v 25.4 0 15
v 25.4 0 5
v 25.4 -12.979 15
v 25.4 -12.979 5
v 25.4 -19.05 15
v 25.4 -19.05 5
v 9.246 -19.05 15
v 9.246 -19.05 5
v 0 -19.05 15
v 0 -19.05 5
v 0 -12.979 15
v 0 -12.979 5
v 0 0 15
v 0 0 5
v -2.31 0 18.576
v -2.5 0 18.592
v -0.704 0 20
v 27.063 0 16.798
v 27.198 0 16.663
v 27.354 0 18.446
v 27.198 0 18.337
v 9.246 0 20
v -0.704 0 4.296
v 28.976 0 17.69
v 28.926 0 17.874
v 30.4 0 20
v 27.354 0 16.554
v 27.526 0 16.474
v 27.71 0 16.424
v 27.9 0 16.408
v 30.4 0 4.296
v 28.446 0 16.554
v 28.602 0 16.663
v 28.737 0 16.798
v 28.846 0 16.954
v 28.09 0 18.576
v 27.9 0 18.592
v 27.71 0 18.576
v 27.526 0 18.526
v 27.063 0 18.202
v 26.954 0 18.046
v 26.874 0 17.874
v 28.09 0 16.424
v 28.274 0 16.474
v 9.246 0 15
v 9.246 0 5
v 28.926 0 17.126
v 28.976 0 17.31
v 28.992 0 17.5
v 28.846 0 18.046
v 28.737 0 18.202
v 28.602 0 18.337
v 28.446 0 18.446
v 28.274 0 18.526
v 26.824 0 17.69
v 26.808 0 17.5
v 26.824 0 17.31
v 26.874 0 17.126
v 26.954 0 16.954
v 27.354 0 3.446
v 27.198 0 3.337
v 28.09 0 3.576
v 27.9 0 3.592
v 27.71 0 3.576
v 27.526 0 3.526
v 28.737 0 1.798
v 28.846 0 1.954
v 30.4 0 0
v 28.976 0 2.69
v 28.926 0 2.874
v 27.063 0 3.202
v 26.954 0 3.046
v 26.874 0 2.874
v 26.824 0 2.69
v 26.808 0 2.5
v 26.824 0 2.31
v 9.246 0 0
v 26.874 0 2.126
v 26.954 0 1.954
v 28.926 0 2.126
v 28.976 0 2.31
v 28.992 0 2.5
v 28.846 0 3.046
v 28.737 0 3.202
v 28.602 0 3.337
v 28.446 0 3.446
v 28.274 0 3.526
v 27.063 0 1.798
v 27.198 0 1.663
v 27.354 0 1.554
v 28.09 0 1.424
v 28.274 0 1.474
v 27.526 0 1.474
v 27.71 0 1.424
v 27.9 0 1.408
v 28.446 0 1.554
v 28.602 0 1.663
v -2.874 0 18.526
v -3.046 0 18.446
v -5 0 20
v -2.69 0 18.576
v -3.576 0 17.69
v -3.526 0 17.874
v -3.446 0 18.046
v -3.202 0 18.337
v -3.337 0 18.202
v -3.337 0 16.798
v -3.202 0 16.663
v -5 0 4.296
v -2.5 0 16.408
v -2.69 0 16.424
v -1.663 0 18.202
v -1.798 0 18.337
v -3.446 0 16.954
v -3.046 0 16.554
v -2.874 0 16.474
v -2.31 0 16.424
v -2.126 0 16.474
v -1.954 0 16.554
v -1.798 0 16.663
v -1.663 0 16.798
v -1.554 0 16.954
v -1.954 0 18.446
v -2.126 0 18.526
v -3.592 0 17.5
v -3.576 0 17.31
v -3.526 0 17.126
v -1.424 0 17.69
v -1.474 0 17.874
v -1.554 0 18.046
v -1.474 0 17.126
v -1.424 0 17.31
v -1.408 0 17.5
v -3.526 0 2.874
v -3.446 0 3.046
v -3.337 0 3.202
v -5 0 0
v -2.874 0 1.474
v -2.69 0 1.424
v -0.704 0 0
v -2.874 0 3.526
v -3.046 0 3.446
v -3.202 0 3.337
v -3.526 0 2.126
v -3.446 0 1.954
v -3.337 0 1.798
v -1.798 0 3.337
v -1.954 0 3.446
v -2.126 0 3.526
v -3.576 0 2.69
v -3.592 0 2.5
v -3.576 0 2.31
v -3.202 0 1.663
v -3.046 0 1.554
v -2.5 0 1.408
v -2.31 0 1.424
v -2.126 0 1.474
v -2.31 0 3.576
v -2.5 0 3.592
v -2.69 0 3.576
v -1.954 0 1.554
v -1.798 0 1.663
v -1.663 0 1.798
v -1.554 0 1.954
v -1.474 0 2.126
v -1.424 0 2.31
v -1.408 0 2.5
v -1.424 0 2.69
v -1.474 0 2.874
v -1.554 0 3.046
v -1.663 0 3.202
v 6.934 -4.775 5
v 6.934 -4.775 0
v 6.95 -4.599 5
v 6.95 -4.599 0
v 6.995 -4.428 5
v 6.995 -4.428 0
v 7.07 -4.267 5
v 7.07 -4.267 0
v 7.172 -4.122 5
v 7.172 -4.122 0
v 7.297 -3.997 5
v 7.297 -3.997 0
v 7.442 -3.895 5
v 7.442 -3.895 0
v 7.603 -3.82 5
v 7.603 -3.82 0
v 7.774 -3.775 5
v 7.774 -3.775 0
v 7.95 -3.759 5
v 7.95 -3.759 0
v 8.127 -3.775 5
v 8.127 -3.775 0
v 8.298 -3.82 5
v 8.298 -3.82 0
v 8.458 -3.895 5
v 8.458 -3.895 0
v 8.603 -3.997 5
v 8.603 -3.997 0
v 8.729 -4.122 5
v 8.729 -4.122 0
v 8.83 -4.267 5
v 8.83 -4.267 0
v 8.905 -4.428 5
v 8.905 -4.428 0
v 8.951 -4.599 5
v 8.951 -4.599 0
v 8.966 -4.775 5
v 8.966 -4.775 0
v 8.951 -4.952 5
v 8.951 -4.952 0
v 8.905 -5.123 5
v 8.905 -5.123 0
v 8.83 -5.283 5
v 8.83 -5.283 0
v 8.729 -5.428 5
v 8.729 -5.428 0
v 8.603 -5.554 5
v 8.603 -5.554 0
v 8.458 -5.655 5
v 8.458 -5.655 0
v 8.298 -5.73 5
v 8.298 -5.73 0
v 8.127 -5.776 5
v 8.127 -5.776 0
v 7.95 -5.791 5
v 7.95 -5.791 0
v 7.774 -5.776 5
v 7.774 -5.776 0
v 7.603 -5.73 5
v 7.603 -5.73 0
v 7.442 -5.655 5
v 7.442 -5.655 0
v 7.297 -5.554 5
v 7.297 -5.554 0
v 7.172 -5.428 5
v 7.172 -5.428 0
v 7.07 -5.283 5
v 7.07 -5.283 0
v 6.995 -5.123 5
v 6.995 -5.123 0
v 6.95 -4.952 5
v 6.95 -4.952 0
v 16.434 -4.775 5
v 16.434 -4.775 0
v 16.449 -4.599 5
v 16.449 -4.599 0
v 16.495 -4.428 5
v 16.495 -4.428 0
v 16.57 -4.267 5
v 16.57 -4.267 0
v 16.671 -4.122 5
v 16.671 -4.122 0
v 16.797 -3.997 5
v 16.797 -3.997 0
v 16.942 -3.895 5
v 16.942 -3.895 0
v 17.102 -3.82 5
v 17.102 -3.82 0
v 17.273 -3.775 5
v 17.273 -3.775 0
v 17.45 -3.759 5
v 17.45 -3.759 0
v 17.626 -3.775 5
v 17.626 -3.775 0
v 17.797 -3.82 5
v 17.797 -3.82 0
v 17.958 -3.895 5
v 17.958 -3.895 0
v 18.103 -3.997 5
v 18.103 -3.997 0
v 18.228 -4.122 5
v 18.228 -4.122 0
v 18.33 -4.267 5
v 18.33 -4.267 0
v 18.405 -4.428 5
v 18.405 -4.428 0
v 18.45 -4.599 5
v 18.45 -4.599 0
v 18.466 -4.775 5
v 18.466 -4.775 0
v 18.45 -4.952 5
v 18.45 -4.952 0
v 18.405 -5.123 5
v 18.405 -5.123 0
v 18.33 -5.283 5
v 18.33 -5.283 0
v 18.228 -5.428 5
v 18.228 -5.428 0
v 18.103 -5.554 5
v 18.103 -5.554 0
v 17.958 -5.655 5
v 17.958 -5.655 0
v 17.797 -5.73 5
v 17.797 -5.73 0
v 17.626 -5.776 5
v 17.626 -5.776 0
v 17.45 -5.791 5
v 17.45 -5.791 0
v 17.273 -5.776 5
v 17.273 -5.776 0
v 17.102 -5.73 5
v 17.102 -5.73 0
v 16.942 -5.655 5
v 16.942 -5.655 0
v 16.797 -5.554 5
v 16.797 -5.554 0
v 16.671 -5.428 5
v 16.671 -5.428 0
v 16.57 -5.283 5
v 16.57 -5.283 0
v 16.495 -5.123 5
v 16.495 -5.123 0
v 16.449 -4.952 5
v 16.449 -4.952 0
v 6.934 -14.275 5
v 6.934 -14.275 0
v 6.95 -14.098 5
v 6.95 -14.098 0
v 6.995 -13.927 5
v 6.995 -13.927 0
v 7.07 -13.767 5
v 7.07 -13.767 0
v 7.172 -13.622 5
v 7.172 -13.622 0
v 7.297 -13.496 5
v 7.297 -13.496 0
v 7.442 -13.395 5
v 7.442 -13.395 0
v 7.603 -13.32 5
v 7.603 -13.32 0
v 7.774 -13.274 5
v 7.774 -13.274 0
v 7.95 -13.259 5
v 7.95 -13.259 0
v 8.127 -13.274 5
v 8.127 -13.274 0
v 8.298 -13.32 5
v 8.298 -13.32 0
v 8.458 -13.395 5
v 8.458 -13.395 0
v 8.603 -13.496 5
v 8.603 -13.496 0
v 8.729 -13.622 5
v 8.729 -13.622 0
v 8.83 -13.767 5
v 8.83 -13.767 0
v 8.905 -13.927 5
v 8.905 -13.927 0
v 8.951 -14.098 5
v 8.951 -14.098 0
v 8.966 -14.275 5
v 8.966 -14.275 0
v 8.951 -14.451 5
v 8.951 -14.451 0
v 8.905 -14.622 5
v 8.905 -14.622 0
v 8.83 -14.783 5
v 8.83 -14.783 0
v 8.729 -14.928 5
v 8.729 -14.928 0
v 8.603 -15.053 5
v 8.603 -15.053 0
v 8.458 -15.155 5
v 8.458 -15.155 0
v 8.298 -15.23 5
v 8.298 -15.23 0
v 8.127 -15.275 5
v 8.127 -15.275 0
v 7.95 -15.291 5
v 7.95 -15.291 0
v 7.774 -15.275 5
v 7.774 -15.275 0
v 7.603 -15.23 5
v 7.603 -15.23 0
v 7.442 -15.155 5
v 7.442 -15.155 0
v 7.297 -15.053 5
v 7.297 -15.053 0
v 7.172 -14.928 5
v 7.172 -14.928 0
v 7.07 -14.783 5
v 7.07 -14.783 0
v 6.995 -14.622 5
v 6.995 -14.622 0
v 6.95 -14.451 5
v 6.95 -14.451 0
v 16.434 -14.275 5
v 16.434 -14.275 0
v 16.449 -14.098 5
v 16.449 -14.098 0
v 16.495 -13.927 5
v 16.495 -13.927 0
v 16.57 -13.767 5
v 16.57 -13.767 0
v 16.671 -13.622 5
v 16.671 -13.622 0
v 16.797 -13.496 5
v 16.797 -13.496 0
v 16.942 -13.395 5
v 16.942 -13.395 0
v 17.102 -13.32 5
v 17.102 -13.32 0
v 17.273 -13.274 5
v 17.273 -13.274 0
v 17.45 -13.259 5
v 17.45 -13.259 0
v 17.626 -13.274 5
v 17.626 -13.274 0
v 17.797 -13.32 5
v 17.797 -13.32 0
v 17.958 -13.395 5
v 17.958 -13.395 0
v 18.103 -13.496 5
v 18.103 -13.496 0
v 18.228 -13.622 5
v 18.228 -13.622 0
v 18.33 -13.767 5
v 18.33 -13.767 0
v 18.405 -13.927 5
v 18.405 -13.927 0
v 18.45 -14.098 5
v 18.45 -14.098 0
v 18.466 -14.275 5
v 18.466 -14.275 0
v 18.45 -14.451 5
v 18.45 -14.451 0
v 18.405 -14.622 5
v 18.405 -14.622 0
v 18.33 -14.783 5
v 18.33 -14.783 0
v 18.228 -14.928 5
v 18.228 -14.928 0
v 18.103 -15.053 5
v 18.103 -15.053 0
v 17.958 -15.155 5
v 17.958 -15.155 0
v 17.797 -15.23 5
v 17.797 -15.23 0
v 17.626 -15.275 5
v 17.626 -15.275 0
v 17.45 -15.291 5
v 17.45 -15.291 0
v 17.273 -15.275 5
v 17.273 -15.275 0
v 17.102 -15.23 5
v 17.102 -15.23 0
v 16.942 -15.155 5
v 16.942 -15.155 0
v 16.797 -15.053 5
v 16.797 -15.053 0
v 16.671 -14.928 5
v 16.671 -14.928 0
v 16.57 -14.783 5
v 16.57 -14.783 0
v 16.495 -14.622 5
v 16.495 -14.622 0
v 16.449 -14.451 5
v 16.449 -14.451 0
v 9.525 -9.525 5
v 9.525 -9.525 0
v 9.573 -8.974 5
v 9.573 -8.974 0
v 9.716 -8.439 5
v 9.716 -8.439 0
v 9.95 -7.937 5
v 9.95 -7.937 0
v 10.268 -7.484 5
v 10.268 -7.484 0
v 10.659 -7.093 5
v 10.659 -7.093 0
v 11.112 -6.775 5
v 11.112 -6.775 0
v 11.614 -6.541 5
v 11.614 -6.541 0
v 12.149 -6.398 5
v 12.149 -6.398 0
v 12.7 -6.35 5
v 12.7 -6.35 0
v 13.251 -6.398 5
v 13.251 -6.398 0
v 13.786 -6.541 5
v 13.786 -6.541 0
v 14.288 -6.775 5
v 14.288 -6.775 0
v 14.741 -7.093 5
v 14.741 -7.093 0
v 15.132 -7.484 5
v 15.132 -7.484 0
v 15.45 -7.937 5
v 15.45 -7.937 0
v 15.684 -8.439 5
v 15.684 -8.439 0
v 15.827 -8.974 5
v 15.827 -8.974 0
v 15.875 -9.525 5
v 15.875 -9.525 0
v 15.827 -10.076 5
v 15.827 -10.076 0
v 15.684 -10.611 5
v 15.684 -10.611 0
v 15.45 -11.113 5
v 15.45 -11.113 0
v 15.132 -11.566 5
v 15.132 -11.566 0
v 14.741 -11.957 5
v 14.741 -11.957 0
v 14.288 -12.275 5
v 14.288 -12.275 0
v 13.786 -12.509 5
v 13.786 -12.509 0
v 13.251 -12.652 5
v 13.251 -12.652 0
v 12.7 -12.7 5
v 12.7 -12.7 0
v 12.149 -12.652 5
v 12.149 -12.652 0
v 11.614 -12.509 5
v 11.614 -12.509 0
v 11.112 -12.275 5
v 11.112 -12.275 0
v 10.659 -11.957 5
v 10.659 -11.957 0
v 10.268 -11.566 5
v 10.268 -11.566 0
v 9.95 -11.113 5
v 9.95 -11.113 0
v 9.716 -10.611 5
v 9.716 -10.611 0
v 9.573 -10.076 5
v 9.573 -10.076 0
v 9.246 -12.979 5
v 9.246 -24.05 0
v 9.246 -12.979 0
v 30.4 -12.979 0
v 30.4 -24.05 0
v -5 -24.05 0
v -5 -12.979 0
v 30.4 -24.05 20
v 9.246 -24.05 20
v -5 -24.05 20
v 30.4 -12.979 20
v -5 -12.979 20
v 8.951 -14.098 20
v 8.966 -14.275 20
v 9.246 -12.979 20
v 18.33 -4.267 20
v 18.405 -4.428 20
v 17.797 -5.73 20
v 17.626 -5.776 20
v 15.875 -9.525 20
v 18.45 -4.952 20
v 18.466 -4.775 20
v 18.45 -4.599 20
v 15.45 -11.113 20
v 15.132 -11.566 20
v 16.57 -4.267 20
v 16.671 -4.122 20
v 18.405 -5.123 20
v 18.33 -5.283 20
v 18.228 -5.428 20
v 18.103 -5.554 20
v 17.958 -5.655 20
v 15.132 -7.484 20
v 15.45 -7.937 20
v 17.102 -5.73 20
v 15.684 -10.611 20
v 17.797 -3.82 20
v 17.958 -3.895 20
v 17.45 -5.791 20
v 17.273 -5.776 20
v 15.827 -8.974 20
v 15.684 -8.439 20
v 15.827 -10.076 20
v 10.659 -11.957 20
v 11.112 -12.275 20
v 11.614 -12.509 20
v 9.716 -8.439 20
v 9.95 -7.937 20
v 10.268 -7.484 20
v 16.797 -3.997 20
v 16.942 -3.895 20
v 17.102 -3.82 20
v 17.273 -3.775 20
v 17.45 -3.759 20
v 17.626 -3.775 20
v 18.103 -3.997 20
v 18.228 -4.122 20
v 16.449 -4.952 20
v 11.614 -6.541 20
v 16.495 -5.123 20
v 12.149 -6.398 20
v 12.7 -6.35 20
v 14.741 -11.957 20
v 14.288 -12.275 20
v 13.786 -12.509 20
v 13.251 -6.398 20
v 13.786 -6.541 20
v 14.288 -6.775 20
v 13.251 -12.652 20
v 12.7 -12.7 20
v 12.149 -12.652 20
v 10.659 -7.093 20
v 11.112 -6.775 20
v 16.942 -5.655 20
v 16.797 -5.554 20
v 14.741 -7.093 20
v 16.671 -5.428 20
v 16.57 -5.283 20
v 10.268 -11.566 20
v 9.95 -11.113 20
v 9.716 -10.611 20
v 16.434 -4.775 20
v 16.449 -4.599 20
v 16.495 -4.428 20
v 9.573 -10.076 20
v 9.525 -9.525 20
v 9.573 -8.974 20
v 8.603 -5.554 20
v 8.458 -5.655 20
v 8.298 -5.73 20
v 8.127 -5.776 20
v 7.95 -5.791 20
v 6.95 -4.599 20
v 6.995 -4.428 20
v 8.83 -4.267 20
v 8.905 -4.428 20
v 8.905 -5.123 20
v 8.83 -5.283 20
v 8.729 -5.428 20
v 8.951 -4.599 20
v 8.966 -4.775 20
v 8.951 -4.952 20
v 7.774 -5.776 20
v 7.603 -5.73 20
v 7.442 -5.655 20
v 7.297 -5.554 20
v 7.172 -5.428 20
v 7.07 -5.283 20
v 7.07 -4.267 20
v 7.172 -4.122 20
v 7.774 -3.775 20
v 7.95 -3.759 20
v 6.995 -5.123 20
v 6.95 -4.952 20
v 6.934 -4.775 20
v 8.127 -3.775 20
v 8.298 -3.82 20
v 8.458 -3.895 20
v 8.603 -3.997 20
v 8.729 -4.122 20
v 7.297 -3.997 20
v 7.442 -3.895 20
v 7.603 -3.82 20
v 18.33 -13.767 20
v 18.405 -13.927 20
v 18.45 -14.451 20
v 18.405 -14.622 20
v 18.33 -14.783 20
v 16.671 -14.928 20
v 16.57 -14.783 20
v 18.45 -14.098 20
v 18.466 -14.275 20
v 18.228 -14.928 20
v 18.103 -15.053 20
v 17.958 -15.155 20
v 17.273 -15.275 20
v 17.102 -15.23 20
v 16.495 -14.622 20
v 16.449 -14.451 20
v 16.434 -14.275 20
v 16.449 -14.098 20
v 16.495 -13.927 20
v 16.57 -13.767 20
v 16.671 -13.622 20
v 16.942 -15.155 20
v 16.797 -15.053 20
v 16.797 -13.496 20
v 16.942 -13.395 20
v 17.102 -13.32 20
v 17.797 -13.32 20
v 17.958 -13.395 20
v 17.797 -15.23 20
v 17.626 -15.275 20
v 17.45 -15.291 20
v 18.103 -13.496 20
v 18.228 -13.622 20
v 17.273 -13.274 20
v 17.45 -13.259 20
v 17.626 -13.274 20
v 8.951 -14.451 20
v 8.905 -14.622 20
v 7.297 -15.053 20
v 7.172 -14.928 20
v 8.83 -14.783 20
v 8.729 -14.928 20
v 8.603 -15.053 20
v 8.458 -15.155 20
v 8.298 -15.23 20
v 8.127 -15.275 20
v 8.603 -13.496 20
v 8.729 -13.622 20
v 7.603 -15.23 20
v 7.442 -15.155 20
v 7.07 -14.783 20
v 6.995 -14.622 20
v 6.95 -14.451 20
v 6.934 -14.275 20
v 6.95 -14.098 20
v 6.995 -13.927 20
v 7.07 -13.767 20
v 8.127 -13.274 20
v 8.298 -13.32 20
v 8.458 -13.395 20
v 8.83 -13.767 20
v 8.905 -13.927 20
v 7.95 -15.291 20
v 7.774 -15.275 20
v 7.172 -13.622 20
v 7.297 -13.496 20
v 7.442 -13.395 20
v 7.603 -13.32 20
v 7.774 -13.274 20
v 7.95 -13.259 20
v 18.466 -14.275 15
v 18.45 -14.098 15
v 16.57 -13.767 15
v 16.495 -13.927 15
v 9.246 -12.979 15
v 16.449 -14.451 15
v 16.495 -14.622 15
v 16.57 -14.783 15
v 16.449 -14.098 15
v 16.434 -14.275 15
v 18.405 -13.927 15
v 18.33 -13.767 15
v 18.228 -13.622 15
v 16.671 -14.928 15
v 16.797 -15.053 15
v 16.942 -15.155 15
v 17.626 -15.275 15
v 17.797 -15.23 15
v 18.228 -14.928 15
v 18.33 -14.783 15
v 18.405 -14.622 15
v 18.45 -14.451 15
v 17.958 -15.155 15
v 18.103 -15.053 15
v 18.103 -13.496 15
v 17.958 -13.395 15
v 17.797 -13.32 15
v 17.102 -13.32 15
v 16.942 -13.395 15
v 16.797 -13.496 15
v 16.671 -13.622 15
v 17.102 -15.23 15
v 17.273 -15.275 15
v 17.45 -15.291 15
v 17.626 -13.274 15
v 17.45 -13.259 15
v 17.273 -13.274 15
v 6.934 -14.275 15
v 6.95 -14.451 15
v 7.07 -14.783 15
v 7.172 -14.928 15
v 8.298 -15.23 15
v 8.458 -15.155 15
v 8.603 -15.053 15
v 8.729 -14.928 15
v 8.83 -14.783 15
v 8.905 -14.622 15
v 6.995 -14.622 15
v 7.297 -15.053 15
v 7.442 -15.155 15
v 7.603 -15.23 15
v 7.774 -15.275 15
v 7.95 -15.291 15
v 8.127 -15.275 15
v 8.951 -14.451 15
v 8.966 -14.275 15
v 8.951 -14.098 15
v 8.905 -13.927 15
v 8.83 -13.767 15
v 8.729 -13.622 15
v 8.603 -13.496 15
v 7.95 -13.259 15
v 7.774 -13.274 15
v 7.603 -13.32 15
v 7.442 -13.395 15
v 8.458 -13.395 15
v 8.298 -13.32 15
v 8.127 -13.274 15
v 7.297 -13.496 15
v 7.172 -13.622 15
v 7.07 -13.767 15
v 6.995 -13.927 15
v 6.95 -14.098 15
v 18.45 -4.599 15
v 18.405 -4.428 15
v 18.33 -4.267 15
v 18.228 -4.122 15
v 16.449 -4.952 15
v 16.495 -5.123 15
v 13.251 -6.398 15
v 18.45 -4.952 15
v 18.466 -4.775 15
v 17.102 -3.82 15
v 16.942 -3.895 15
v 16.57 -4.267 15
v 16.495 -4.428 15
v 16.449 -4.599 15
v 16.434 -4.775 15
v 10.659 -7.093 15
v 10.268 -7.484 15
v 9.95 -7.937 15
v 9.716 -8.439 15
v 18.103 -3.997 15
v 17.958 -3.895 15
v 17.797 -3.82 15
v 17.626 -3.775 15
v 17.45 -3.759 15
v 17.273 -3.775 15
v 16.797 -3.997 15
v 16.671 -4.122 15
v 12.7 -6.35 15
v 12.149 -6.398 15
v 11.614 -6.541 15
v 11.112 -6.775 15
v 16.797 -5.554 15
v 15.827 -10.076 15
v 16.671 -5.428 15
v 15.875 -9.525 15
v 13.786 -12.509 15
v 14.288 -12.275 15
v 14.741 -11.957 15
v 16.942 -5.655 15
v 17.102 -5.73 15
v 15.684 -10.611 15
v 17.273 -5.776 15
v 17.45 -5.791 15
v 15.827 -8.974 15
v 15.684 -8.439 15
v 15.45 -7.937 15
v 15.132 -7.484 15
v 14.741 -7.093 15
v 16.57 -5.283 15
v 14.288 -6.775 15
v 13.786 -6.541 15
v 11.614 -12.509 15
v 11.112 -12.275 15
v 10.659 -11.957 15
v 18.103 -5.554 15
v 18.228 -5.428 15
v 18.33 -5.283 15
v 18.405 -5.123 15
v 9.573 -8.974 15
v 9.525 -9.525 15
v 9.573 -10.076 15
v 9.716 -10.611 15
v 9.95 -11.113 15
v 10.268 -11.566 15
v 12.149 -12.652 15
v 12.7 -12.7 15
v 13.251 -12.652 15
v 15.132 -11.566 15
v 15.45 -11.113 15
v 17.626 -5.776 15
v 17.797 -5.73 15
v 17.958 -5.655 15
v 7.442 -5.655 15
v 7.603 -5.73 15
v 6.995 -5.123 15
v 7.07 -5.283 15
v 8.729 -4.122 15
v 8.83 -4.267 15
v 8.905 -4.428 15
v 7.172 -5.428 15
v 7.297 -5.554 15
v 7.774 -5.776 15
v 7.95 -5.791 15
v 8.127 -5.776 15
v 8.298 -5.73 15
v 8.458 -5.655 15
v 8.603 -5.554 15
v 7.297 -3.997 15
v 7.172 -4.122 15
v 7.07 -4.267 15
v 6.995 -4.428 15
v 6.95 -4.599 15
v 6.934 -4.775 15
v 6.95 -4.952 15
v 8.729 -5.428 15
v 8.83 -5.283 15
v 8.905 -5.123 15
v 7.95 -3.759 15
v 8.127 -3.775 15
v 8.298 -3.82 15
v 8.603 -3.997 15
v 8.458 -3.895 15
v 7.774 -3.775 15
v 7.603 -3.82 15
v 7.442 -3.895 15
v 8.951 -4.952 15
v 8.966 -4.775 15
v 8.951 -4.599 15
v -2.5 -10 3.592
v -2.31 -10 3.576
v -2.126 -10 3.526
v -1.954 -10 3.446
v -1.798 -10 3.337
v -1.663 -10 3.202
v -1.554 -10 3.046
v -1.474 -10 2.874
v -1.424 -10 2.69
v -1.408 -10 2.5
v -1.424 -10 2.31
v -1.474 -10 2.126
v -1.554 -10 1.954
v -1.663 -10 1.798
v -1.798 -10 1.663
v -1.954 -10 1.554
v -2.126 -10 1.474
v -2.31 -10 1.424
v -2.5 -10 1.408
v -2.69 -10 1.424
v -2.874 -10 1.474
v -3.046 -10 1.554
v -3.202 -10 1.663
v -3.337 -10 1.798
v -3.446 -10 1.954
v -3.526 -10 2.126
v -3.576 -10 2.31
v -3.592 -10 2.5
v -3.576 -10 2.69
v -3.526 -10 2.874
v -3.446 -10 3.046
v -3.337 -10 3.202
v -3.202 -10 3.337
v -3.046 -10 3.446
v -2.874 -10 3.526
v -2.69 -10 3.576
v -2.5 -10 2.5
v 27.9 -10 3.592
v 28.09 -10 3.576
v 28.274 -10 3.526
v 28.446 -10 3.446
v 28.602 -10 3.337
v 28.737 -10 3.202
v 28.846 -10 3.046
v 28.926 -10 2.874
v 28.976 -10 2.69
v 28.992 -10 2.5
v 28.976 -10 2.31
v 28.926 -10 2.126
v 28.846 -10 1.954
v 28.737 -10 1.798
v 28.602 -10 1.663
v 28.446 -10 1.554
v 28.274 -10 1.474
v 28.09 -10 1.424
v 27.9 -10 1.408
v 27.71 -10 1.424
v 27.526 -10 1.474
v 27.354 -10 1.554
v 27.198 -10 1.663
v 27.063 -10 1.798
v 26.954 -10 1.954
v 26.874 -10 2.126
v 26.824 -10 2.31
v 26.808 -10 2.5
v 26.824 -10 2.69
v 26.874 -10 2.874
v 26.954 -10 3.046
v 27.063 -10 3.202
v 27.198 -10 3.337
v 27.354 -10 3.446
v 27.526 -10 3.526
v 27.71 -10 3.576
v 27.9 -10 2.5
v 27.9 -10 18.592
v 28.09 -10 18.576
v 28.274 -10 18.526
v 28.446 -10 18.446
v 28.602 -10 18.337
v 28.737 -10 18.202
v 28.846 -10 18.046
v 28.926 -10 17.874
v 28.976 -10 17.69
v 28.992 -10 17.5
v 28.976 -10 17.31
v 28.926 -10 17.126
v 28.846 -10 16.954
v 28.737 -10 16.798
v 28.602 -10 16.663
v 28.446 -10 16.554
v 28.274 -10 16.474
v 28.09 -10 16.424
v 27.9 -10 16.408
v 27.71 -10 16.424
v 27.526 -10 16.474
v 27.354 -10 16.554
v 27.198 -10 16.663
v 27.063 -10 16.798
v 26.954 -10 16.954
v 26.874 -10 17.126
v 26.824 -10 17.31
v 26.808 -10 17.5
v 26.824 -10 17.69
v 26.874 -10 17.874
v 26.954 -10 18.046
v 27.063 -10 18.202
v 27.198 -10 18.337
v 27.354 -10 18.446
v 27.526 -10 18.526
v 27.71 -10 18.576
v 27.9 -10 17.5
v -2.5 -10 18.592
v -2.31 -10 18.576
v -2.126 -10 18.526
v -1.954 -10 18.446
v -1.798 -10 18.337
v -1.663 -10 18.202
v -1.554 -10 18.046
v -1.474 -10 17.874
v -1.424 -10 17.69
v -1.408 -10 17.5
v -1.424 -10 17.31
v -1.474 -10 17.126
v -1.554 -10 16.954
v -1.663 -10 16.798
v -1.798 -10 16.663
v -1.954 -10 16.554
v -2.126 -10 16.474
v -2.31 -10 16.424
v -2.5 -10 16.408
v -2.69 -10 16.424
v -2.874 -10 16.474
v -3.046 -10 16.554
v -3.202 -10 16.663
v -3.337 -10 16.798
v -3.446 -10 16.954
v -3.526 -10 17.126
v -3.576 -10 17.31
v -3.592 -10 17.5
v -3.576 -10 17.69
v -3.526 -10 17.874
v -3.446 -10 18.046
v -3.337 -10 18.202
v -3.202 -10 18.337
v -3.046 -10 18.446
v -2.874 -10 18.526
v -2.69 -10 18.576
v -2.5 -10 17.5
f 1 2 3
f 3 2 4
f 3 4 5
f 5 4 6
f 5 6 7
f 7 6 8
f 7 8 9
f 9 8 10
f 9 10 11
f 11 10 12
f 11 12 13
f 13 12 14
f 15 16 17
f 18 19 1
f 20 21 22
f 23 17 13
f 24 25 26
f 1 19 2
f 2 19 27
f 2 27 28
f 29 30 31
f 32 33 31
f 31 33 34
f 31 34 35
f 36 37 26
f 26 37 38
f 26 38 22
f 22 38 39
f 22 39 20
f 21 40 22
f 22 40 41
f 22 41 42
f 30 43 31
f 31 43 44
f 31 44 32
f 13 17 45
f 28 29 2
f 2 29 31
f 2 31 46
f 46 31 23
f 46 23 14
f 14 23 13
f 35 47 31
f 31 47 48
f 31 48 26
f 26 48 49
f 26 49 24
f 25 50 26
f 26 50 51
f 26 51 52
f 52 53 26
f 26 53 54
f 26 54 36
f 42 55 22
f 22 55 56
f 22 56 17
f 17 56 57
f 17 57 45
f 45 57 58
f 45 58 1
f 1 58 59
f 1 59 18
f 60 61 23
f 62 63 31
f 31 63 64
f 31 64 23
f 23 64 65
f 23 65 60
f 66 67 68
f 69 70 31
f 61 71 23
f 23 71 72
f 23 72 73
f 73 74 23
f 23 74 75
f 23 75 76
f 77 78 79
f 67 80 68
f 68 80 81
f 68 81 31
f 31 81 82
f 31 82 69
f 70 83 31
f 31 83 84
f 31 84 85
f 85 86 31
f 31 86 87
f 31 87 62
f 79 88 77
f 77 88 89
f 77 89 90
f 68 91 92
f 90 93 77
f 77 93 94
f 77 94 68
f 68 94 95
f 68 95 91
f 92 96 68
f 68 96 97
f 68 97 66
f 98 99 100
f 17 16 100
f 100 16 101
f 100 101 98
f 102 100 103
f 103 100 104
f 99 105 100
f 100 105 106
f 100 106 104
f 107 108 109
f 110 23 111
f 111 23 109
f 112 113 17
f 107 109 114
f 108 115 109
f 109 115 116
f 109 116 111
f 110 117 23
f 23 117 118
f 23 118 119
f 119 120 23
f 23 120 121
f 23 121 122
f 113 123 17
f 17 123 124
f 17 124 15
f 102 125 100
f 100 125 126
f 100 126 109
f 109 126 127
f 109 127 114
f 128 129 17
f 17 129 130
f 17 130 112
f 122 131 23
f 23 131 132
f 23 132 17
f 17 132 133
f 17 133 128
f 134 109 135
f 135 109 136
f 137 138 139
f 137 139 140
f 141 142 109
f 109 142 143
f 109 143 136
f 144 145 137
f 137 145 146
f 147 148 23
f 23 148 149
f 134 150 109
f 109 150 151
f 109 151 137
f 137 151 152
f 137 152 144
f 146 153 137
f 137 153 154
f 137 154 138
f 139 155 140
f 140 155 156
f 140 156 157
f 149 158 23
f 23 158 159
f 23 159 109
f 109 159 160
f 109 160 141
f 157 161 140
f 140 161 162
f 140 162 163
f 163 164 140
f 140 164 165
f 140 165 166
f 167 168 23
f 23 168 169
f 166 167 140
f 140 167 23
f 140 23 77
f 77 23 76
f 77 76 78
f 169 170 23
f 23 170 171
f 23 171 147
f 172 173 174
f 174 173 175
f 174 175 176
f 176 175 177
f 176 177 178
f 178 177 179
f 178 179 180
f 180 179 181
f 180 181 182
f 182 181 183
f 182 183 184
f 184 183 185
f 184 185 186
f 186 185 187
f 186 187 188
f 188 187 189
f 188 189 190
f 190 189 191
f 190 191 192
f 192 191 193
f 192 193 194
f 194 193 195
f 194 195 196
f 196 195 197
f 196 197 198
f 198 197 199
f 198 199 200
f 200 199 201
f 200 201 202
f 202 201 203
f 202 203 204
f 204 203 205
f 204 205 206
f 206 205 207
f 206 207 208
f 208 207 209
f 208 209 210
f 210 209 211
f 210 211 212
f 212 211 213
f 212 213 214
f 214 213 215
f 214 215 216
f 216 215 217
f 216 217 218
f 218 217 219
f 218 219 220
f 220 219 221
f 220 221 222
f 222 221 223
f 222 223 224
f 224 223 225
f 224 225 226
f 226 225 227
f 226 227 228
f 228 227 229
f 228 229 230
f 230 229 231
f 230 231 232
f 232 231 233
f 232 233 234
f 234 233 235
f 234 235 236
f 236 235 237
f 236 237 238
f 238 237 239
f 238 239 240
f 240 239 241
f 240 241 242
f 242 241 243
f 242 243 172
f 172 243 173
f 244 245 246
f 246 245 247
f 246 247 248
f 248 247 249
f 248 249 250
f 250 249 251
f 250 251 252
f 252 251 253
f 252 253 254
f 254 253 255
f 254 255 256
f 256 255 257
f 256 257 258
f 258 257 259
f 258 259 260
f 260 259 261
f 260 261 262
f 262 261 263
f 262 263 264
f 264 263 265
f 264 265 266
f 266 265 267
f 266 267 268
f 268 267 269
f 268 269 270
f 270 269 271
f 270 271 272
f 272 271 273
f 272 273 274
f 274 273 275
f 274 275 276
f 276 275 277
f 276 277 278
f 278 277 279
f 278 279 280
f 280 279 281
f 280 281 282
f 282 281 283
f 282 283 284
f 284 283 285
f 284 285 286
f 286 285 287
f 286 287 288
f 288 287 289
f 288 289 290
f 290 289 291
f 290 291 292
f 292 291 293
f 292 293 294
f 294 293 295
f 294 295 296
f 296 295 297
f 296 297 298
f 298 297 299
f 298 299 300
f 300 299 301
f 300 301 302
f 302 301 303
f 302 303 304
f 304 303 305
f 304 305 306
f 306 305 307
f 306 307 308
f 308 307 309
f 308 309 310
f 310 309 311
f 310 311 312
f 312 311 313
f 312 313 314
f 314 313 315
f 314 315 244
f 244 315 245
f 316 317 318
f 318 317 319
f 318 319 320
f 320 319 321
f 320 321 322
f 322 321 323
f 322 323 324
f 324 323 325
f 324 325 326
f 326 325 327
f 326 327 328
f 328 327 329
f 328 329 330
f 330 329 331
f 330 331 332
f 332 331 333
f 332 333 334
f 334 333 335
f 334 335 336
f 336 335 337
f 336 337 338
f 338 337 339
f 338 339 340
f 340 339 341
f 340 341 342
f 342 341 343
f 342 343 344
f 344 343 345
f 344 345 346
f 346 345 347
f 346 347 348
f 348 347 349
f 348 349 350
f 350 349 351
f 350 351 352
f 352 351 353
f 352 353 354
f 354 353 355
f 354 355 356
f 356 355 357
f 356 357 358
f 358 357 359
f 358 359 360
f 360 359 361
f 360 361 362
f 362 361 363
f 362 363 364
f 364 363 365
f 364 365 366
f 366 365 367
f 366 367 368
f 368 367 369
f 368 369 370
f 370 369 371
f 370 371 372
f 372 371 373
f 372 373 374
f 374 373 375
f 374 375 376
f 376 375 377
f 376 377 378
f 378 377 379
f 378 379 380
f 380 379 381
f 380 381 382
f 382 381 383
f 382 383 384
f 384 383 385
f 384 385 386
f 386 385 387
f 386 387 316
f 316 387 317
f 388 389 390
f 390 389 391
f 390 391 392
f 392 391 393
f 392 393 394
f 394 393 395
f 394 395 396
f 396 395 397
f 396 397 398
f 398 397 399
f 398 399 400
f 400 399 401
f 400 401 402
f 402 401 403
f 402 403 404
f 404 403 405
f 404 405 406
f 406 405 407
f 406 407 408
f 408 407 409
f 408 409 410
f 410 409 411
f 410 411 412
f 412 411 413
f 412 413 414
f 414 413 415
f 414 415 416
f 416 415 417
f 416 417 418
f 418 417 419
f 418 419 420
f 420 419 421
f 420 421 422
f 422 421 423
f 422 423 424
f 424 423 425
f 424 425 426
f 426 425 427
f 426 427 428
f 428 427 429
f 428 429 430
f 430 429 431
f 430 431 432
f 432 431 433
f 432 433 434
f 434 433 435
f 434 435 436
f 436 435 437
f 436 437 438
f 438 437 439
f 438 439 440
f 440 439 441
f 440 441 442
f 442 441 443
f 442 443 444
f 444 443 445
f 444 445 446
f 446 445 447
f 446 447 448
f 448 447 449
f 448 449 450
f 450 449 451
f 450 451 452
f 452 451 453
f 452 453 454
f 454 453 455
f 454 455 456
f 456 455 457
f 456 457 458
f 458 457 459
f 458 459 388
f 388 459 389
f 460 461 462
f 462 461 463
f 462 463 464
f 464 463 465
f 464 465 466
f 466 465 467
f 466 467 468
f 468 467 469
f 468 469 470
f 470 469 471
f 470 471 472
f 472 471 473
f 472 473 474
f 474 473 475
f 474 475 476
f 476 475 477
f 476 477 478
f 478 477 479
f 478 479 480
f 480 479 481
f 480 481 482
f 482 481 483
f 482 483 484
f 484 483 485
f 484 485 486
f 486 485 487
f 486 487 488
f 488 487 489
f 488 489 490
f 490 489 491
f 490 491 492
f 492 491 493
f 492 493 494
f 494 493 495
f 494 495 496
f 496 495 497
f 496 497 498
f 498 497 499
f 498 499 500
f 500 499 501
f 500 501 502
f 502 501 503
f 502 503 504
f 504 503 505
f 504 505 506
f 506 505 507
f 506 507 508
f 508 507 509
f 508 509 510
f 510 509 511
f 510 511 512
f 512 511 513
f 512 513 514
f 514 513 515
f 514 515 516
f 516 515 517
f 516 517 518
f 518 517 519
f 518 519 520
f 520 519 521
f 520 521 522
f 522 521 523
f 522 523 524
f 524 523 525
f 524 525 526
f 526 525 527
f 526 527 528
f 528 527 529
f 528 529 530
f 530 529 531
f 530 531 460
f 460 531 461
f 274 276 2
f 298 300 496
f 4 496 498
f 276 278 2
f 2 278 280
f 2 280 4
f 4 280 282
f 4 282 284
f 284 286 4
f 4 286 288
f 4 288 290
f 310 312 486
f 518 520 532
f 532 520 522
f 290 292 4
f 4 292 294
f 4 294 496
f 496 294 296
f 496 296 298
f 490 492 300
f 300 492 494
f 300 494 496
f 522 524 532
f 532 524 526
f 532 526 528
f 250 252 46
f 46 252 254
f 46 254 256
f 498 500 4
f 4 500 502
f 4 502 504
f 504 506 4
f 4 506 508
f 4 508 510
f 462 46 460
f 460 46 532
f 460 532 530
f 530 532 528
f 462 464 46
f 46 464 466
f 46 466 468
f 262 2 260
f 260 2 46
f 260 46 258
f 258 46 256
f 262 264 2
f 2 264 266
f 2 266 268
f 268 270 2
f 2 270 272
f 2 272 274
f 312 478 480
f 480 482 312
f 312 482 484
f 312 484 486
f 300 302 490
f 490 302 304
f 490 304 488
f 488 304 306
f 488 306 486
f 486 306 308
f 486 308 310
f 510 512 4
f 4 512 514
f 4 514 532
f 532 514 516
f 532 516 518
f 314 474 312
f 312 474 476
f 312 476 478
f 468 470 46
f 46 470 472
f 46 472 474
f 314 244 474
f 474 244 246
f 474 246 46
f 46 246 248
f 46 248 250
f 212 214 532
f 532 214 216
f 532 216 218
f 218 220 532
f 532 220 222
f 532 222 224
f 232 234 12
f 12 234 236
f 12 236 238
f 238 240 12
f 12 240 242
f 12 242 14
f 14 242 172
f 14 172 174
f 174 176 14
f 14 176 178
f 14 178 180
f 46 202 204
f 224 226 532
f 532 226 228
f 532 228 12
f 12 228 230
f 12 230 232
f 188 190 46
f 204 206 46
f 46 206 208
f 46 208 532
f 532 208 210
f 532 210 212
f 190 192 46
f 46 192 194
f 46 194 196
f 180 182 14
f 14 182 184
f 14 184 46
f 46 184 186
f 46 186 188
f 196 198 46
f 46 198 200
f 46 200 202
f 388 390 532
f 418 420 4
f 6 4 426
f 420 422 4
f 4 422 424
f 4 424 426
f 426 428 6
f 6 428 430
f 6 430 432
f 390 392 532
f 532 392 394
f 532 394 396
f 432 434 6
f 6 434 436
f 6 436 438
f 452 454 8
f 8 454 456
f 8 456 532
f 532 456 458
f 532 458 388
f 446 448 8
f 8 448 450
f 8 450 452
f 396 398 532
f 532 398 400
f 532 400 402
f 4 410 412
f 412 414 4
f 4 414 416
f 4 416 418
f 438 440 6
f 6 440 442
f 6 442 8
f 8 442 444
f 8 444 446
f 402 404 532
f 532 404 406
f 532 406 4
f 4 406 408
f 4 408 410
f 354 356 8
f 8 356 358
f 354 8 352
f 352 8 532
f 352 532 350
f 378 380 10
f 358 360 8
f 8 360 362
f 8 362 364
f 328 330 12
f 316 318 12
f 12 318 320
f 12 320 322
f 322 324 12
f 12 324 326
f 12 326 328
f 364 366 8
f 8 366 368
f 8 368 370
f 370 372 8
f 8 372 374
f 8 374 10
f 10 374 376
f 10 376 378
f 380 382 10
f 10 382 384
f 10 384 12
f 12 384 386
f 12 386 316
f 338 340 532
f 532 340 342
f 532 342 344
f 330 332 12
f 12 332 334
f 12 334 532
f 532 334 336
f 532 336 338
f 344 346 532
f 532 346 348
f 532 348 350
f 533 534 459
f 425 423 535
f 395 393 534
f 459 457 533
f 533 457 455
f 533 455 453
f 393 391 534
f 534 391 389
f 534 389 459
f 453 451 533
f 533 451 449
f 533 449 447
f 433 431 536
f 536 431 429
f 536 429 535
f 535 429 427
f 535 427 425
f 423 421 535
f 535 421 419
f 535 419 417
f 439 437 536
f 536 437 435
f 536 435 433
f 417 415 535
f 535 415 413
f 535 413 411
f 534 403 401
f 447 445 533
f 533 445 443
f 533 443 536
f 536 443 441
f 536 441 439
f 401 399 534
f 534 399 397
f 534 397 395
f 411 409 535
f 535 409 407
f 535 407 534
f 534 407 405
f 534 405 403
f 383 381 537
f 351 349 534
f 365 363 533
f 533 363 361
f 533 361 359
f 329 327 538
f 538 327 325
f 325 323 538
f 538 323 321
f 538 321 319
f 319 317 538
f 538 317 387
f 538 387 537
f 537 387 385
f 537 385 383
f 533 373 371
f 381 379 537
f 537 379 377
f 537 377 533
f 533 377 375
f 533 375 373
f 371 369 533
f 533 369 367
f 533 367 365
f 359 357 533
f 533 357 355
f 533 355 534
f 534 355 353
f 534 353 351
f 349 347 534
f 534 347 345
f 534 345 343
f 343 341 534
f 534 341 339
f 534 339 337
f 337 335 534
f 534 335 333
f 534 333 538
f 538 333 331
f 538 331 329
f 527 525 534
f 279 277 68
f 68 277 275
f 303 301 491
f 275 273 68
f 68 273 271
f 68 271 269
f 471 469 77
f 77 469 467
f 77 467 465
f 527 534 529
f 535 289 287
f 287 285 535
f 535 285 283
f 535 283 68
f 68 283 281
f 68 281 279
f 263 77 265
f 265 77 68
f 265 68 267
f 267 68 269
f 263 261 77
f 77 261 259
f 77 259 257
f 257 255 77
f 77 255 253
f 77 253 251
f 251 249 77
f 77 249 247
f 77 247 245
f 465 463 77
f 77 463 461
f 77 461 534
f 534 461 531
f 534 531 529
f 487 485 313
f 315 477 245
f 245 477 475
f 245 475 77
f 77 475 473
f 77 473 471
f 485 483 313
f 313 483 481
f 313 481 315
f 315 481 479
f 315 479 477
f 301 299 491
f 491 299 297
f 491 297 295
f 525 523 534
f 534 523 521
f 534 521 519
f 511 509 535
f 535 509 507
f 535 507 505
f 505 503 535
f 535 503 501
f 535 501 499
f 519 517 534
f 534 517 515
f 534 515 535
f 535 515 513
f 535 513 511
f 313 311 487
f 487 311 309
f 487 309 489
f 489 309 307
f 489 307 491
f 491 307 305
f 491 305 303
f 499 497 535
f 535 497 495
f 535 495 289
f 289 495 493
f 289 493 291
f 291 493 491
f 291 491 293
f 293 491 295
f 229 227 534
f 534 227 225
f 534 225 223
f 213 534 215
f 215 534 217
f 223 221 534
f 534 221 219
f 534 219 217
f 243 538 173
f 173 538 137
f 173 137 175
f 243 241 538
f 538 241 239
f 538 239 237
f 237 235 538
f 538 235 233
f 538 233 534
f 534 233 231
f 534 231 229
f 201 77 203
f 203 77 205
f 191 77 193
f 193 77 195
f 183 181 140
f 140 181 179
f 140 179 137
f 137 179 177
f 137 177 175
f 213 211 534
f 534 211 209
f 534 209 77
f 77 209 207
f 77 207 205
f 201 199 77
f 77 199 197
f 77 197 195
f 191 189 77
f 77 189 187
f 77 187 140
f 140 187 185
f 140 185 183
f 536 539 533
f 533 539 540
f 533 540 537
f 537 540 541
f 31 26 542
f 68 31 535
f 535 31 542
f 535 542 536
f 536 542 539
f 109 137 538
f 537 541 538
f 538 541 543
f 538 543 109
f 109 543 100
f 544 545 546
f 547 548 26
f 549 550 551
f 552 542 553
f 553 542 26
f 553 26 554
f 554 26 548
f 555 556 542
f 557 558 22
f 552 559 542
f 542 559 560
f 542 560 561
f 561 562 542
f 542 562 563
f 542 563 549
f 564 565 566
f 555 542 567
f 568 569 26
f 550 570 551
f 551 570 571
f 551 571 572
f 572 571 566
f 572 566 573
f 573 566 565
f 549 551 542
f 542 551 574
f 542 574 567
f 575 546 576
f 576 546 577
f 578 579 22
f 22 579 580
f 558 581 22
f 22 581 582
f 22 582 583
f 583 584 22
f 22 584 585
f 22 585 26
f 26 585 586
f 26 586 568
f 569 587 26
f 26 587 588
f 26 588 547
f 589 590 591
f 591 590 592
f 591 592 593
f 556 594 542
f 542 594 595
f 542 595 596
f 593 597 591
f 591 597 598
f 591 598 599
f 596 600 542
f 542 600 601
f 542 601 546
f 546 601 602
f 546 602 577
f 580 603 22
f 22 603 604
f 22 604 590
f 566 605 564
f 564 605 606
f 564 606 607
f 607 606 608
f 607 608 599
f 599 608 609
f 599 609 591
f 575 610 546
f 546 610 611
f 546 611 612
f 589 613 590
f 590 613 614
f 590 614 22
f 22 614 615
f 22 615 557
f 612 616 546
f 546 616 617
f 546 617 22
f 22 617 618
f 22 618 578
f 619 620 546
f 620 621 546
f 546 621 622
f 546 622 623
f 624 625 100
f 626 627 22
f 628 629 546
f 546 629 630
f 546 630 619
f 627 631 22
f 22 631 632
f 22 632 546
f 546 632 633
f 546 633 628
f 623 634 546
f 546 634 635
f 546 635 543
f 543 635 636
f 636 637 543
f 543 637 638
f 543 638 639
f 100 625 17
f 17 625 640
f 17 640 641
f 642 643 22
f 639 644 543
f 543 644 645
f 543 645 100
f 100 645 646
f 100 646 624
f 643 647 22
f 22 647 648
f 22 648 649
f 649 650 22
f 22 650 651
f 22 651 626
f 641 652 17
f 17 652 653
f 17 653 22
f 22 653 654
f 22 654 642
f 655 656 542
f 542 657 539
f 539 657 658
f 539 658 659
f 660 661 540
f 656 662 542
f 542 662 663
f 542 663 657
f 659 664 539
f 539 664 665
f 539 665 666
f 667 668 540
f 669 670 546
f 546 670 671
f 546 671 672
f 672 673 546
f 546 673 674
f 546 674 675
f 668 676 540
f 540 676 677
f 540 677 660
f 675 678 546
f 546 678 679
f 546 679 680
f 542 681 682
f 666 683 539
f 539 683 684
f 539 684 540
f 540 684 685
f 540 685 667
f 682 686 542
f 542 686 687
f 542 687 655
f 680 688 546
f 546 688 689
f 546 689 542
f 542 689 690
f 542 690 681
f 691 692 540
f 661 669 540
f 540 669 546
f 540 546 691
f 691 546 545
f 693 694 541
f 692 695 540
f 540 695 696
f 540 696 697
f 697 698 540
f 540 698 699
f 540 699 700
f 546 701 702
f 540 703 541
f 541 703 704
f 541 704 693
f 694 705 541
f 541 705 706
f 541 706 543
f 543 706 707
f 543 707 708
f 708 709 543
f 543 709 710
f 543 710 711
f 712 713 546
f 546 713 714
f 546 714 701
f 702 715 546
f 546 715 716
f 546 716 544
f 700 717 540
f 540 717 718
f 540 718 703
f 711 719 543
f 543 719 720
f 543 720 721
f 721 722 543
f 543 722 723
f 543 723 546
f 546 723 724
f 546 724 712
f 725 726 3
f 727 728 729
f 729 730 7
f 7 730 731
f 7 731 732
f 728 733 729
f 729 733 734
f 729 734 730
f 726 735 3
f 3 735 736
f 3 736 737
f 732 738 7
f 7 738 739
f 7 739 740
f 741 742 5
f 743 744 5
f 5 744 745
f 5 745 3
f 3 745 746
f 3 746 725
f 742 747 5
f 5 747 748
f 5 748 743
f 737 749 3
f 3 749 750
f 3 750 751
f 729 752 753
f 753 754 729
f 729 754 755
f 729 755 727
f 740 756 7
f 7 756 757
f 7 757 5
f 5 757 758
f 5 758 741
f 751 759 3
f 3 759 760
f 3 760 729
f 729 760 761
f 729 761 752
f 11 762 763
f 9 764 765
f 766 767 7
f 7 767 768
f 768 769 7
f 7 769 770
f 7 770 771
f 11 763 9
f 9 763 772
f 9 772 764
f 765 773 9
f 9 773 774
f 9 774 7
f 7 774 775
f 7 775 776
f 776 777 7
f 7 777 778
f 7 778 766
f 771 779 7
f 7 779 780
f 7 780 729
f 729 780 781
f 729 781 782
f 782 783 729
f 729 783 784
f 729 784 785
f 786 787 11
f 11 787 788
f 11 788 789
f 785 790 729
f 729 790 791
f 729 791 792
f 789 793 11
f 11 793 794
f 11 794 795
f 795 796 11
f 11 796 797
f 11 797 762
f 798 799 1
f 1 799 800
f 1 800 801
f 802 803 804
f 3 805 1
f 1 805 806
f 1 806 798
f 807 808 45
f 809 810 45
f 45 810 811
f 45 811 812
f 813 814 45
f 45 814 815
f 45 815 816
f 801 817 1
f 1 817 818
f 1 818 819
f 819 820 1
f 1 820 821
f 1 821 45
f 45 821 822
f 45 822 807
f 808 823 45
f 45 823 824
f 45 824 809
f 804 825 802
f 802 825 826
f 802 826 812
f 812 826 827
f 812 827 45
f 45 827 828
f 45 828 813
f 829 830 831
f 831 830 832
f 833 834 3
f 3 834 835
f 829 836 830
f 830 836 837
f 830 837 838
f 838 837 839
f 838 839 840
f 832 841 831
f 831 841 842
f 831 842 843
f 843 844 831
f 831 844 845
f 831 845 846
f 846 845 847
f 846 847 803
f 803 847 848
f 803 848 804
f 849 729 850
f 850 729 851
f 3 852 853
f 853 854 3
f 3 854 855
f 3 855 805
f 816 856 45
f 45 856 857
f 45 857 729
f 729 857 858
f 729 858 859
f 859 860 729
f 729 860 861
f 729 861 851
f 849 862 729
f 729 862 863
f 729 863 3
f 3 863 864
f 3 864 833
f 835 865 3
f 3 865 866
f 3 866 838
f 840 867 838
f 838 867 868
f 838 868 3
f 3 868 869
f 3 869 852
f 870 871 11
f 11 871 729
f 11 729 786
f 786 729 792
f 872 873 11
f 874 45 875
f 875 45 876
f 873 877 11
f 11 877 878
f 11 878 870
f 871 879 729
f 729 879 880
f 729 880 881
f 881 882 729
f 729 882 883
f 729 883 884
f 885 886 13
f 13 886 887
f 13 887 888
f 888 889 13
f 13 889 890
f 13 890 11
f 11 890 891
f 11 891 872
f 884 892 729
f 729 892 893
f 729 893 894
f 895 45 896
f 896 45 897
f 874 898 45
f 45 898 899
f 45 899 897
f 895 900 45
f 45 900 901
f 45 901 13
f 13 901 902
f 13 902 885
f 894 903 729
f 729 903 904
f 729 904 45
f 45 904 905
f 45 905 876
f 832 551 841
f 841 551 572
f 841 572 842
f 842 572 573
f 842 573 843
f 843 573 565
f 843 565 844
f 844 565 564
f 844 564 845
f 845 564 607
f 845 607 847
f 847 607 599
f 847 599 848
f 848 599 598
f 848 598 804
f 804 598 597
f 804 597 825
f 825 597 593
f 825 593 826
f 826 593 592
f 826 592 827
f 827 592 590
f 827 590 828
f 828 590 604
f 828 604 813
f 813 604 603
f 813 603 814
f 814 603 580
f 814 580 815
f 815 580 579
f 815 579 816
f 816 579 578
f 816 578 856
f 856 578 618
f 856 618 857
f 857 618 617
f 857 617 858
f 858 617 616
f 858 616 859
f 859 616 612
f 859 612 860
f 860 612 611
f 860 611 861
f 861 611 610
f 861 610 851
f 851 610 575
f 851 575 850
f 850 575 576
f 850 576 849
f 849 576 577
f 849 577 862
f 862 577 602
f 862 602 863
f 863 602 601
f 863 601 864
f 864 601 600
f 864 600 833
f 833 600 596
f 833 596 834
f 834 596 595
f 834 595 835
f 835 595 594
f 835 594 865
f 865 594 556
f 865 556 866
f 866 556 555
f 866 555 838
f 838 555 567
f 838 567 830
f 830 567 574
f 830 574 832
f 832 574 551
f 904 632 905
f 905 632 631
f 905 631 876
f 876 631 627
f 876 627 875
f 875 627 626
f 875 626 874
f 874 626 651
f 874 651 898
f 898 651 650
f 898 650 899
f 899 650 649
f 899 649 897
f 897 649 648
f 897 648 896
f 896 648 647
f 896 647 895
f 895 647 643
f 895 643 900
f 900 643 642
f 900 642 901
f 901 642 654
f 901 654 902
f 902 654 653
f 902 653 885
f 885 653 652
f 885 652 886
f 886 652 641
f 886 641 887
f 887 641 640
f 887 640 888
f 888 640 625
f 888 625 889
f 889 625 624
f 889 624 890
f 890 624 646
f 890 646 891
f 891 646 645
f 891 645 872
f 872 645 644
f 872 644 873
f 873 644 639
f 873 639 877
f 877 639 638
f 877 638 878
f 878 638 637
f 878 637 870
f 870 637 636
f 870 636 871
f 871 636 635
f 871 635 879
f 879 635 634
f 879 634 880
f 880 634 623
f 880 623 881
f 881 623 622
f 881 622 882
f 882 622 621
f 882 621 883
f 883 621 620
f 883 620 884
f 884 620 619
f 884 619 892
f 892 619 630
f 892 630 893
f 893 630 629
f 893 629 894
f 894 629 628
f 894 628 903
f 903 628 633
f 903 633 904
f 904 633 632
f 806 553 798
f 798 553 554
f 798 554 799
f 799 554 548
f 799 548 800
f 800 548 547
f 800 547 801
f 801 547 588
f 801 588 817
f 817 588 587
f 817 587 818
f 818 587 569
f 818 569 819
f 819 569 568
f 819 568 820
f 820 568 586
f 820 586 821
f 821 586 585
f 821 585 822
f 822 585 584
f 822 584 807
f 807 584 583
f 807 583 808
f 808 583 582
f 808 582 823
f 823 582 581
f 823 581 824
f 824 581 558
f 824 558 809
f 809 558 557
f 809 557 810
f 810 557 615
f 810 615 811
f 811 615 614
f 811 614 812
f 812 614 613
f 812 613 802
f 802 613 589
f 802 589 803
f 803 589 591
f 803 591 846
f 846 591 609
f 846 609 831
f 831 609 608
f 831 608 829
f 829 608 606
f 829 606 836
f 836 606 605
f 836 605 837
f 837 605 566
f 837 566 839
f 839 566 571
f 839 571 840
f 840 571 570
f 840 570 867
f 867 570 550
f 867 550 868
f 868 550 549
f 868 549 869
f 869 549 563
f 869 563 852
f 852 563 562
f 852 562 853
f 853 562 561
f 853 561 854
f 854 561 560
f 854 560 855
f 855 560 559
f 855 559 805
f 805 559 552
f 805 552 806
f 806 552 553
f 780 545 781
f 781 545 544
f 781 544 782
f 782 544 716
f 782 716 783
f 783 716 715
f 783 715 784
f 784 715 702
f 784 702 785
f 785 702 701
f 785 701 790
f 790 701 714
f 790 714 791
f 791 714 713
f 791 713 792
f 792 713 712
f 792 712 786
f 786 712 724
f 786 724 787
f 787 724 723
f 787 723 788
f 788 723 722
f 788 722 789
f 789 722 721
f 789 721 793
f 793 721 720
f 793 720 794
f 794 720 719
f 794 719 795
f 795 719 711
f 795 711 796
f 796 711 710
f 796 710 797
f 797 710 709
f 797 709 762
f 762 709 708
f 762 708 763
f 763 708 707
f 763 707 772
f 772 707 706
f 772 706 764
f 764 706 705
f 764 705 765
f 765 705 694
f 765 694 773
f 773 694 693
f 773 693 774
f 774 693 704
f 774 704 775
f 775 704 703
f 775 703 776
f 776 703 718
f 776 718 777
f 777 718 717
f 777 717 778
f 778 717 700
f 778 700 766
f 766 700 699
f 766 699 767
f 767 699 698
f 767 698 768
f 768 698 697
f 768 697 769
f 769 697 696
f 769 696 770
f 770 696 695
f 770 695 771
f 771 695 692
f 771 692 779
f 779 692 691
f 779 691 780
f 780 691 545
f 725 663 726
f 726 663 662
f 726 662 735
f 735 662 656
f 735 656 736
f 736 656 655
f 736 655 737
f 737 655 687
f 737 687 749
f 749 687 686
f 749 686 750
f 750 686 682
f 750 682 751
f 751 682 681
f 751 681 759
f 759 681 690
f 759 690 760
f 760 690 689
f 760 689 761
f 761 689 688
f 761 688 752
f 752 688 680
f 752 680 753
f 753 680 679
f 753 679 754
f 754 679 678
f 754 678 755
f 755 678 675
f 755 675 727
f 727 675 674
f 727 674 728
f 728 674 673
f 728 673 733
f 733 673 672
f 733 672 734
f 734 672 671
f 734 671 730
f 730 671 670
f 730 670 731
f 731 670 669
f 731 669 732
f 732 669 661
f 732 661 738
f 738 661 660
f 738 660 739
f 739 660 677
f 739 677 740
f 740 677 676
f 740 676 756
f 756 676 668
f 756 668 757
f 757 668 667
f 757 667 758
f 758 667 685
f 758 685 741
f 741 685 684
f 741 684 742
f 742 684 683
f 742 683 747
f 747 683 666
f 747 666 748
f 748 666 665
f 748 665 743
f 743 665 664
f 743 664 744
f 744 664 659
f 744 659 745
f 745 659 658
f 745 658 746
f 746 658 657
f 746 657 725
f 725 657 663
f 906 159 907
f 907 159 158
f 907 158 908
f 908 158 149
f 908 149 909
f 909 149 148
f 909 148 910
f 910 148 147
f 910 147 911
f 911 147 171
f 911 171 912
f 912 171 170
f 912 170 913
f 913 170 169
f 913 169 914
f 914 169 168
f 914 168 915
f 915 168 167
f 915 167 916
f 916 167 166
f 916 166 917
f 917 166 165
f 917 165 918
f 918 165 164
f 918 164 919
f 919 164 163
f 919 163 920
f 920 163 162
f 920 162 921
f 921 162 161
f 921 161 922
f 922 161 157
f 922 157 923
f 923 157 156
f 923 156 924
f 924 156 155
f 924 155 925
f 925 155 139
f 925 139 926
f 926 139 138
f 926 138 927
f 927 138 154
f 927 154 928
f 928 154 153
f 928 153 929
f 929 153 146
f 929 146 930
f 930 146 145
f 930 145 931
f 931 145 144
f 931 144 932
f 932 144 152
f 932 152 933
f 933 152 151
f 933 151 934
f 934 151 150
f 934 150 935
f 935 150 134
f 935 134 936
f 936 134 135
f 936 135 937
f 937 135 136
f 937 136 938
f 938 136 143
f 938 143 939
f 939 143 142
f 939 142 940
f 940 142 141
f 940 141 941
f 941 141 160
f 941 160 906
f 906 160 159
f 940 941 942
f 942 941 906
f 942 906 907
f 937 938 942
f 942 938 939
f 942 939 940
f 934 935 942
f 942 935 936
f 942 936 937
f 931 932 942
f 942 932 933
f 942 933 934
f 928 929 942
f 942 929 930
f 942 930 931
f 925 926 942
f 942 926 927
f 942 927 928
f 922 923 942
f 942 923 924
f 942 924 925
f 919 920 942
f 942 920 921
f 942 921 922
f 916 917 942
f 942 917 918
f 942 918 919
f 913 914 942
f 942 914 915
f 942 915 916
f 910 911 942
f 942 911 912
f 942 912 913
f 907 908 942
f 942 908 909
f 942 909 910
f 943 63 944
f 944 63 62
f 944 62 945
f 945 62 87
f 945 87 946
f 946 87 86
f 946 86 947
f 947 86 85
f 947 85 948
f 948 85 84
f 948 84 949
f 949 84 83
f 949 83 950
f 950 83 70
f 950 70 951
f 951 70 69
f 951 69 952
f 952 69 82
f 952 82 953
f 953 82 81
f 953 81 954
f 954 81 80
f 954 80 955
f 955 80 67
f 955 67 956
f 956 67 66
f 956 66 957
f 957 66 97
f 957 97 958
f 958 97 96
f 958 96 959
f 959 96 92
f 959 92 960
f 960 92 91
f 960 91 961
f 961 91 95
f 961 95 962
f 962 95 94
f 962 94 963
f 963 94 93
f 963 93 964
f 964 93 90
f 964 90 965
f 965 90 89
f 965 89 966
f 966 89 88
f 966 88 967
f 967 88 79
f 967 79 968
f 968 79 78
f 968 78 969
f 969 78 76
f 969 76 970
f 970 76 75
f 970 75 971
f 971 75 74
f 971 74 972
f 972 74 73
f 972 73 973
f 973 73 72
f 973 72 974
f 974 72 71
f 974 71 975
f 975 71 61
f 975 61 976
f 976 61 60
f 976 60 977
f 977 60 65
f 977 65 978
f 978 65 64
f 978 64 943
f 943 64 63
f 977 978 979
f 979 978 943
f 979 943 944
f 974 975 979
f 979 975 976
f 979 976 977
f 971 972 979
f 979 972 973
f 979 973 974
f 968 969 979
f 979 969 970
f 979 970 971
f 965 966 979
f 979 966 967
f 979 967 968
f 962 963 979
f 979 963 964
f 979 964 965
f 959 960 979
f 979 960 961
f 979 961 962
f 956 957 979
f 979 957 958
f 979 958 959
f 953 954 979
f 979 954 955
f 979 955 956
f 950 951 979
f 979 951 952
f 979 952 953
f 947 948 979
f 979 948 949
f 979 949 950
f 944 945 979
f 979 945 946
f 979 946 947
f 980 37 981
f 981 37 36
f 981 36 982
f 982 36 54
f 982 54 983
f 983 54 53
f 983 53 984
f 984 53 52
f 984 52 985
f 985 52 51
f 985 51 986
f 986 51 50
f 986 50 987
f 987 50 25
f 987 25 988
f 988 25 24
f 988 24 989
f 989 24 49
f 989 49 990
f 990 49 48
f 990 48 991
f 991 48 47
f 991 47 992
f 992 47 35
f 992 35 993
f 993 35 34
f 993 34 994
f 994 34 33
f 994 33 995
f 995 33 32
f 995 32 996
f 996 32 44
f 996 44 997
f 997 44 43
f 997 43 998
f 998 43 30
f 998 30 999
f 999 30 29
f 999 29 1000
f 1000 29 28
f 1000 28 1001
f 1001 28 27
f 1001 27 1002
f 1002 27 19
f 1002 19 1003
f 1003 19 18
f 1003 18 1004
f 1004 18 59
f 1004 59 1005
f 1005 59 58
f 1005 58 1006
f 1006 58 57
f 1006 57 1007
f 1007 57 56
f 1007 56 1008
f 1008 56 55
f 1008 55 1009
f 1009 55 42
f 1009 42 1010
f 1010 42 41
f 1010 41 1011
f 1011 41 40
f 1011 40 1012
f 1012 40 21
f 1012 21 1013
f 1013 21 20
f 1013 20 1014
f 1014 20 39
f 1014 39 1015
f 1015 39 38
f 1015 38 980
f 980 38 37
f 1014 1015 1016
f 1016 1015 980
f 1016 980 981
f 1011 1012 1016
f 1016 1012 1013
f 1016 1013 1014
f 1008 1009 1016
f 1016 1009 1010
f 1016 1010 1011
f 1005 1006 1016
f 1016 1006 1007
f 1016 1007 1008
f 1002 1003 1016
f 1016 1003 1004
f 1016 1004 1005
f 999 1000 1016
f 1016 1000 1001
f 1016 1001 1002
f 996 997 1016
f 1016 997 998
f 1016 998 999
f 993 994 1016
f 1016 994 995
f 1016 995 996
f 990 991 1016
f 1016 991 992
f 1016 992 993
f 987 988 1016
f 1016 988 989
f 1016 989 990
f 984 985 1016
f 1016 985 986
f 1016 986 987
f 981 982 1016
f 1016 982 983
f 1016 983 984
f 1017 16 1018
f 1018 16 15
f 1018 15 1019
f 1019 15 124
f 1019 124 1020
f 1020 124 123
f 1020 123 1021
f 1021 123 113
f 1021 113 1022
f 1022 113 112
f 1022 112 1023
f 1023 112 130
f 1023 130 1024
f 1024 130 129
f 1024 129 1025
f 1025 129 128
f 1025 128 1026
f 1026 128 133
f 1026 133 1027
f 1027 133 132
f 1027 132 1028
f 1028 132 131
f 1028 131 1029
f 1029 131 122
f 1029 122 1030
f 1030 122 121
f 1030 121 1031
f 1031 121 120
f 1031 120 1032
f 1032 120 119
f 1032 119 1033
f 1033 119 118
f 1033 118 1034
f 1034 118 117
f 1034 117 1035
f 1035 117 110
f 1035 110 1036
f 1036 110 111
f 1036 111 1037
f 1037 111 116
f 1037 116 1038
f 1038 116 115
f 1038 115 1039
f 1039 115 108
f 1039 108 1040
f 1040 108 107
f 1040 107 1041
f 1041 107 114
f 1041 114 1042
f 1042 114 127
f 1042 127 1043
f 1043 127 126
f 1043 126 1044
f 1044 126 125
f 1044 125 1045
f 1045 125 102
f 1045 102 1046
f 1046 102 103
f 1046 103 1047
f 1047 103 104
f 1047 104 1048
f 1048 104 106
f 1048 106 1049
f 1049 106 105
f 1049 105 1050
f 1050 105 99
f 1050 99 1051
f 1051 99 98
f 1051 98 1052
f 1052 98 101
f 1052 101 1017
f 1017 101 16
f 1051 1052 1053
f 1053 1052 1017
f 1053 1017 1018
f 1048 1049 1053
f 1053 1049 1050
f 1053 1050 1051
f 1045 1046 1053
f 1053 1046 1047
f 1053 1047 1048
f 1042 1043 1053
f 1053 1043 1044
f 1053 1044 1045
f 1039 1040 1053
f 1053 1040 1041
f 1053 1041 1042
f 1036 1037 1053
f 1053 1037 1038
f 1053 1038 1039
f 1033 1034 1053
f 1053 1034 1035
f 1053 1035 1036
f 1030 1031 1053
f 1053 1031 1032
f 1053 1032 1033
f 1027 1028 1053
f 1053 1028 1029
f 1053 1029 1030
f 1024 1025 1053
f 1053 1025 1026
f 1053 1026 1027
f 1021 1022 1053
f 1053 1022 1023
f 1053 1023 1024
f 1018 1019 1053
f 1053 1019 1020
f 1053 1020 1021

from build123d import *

# Parameters (mm, degrees)
SKETCH1_W           = 25.4
SKETCH1_H           = 19.05
SKETCH1_R           = 3.175
SKETCH1_R_2         = 1.016
BOSS_EXTRUDE1_DEPTH = 5
SKETCH1_3_W         = 25.4
SKETCH1_3_H         = 5
BOSS_EXTRUDE2_DEPTH = 20
BOSS_EXTRUDE3_START = 20
SKETCH1_4_W         = 25.4
SKETCH1_4_H         = 19.05
SKETCH1_4_R         = 3.175
SKETCH1_4_R_2       = 1.016
BOSS_EXTRUDE3_DEPTH = 5
SKETCH2_R           = 1.0922
CUT_EXTRUDE1_DEPTH  = 10


with BuildPart() as part:
    # Sketch1 → Boss-Extrude1 (new body)
    with BuildSketch(Plane.XY):
        with Locations((12.7, -9.525)):
            Rectangle(SKETCH1_W, SKETCH1_H)
        with Locations((12.7, -9.525)):
            Circle(SKETCH1_R, mode=Mode.SUBTRACT)
        with Locations((17.4498, -14.2748)):
            Circle(SKETCH1_R_2, mode=Mode.SUBTRACT)
        with Locations((7.9502, -14.2748)):
            Circle(SKETCH1_R_2, mode=Mode.SUBTRACT)
        with Locations((17.4498, -4.7752)):
            Circle(SKETCH1_R_2, mode=Mode.SUBTRACT)
        with Locations((7.9502, -4.7752)):
            Circle(SKETCH1_R_2, mode=Mode.SUBTRACT)
    extrude(amount=BOSS_EXTRUDE1_DEPTH)

    # Sketch1<3> → Boss-Extrude2 (add)
    with BuildSketch(Plane.XY):
        with Locations((12.7, -21.55)):
            Rectangle(SKETCH1_3_W, SKETCH1_3_H)
        Polygon((30.4, 0), (30.4, -24.05), (25.4, -24.05), (25.4, -19.05), (25.4, 0), align=None)
        Polygon((-5, 0), (-5, -24.05), (0, -24.05), (0, -19.05), (0, 0), align=None)
    extrude(amount=BOSS_EXTRUDE2_DEPTH)

    # Sketch1<4> → Boss-Extrude3 (add)
    with BuildSketch(Plane.XY.offset(BOSS_EXTRUDE3_START)):
        with Locations((12.7, -9.525)):
            Rectangle(SKETCH1_4_W, SKETCH1_4_H)
        with Locations((12.7, -9.525)):
            Circle(SKETCH1_4_R, mode=Mode.SUBTRACT)
        with Locations((17.4498, -14.2748)):
            Circle(SKETCH1_4_R_2, mode=Mode.SUBTRACT)
        with Locations((7.9502, -14.2748)):
            Circle(SKETCH1_4_R_2, mode=Mode.SUBTRACT)
        with Locations((17.4498, -4.7752)):
            Circle(SKETCH1_4_R_2, mode=Mode.SUBTRACT)
        with Locations((7.9502, -4.7752)):
            Circle(SKETCH1_4_R_2, mode=Mode.SUBTRACT)
    extrude(amount=-BOSS_EXTRUDE3_DEPTH)

    # Sketch2 → Cut-Extrude1 (cut)
    with BuildSketch(Plane(origin=(0, 0, 0), x_dir=(1, 0, 0), z_dir=(0, 1, 0))):
        with Locations((-2.5, -2.5)):
            Circle(SKETCH2_R)
        with Locations((27.9, -2.5)):
            Circle(SKETCH2_R)
        with Locations((27.9, -17.5)):
            Circle(SKETCH2_R)
        with Locations((-2.5, -17.5)):
            Circle(SKETCH2_R)
    extrude(amount=-CUT_EXTRUDE1_DEPTH, mode=Mode.SUBTRACT)


solid = part.part
